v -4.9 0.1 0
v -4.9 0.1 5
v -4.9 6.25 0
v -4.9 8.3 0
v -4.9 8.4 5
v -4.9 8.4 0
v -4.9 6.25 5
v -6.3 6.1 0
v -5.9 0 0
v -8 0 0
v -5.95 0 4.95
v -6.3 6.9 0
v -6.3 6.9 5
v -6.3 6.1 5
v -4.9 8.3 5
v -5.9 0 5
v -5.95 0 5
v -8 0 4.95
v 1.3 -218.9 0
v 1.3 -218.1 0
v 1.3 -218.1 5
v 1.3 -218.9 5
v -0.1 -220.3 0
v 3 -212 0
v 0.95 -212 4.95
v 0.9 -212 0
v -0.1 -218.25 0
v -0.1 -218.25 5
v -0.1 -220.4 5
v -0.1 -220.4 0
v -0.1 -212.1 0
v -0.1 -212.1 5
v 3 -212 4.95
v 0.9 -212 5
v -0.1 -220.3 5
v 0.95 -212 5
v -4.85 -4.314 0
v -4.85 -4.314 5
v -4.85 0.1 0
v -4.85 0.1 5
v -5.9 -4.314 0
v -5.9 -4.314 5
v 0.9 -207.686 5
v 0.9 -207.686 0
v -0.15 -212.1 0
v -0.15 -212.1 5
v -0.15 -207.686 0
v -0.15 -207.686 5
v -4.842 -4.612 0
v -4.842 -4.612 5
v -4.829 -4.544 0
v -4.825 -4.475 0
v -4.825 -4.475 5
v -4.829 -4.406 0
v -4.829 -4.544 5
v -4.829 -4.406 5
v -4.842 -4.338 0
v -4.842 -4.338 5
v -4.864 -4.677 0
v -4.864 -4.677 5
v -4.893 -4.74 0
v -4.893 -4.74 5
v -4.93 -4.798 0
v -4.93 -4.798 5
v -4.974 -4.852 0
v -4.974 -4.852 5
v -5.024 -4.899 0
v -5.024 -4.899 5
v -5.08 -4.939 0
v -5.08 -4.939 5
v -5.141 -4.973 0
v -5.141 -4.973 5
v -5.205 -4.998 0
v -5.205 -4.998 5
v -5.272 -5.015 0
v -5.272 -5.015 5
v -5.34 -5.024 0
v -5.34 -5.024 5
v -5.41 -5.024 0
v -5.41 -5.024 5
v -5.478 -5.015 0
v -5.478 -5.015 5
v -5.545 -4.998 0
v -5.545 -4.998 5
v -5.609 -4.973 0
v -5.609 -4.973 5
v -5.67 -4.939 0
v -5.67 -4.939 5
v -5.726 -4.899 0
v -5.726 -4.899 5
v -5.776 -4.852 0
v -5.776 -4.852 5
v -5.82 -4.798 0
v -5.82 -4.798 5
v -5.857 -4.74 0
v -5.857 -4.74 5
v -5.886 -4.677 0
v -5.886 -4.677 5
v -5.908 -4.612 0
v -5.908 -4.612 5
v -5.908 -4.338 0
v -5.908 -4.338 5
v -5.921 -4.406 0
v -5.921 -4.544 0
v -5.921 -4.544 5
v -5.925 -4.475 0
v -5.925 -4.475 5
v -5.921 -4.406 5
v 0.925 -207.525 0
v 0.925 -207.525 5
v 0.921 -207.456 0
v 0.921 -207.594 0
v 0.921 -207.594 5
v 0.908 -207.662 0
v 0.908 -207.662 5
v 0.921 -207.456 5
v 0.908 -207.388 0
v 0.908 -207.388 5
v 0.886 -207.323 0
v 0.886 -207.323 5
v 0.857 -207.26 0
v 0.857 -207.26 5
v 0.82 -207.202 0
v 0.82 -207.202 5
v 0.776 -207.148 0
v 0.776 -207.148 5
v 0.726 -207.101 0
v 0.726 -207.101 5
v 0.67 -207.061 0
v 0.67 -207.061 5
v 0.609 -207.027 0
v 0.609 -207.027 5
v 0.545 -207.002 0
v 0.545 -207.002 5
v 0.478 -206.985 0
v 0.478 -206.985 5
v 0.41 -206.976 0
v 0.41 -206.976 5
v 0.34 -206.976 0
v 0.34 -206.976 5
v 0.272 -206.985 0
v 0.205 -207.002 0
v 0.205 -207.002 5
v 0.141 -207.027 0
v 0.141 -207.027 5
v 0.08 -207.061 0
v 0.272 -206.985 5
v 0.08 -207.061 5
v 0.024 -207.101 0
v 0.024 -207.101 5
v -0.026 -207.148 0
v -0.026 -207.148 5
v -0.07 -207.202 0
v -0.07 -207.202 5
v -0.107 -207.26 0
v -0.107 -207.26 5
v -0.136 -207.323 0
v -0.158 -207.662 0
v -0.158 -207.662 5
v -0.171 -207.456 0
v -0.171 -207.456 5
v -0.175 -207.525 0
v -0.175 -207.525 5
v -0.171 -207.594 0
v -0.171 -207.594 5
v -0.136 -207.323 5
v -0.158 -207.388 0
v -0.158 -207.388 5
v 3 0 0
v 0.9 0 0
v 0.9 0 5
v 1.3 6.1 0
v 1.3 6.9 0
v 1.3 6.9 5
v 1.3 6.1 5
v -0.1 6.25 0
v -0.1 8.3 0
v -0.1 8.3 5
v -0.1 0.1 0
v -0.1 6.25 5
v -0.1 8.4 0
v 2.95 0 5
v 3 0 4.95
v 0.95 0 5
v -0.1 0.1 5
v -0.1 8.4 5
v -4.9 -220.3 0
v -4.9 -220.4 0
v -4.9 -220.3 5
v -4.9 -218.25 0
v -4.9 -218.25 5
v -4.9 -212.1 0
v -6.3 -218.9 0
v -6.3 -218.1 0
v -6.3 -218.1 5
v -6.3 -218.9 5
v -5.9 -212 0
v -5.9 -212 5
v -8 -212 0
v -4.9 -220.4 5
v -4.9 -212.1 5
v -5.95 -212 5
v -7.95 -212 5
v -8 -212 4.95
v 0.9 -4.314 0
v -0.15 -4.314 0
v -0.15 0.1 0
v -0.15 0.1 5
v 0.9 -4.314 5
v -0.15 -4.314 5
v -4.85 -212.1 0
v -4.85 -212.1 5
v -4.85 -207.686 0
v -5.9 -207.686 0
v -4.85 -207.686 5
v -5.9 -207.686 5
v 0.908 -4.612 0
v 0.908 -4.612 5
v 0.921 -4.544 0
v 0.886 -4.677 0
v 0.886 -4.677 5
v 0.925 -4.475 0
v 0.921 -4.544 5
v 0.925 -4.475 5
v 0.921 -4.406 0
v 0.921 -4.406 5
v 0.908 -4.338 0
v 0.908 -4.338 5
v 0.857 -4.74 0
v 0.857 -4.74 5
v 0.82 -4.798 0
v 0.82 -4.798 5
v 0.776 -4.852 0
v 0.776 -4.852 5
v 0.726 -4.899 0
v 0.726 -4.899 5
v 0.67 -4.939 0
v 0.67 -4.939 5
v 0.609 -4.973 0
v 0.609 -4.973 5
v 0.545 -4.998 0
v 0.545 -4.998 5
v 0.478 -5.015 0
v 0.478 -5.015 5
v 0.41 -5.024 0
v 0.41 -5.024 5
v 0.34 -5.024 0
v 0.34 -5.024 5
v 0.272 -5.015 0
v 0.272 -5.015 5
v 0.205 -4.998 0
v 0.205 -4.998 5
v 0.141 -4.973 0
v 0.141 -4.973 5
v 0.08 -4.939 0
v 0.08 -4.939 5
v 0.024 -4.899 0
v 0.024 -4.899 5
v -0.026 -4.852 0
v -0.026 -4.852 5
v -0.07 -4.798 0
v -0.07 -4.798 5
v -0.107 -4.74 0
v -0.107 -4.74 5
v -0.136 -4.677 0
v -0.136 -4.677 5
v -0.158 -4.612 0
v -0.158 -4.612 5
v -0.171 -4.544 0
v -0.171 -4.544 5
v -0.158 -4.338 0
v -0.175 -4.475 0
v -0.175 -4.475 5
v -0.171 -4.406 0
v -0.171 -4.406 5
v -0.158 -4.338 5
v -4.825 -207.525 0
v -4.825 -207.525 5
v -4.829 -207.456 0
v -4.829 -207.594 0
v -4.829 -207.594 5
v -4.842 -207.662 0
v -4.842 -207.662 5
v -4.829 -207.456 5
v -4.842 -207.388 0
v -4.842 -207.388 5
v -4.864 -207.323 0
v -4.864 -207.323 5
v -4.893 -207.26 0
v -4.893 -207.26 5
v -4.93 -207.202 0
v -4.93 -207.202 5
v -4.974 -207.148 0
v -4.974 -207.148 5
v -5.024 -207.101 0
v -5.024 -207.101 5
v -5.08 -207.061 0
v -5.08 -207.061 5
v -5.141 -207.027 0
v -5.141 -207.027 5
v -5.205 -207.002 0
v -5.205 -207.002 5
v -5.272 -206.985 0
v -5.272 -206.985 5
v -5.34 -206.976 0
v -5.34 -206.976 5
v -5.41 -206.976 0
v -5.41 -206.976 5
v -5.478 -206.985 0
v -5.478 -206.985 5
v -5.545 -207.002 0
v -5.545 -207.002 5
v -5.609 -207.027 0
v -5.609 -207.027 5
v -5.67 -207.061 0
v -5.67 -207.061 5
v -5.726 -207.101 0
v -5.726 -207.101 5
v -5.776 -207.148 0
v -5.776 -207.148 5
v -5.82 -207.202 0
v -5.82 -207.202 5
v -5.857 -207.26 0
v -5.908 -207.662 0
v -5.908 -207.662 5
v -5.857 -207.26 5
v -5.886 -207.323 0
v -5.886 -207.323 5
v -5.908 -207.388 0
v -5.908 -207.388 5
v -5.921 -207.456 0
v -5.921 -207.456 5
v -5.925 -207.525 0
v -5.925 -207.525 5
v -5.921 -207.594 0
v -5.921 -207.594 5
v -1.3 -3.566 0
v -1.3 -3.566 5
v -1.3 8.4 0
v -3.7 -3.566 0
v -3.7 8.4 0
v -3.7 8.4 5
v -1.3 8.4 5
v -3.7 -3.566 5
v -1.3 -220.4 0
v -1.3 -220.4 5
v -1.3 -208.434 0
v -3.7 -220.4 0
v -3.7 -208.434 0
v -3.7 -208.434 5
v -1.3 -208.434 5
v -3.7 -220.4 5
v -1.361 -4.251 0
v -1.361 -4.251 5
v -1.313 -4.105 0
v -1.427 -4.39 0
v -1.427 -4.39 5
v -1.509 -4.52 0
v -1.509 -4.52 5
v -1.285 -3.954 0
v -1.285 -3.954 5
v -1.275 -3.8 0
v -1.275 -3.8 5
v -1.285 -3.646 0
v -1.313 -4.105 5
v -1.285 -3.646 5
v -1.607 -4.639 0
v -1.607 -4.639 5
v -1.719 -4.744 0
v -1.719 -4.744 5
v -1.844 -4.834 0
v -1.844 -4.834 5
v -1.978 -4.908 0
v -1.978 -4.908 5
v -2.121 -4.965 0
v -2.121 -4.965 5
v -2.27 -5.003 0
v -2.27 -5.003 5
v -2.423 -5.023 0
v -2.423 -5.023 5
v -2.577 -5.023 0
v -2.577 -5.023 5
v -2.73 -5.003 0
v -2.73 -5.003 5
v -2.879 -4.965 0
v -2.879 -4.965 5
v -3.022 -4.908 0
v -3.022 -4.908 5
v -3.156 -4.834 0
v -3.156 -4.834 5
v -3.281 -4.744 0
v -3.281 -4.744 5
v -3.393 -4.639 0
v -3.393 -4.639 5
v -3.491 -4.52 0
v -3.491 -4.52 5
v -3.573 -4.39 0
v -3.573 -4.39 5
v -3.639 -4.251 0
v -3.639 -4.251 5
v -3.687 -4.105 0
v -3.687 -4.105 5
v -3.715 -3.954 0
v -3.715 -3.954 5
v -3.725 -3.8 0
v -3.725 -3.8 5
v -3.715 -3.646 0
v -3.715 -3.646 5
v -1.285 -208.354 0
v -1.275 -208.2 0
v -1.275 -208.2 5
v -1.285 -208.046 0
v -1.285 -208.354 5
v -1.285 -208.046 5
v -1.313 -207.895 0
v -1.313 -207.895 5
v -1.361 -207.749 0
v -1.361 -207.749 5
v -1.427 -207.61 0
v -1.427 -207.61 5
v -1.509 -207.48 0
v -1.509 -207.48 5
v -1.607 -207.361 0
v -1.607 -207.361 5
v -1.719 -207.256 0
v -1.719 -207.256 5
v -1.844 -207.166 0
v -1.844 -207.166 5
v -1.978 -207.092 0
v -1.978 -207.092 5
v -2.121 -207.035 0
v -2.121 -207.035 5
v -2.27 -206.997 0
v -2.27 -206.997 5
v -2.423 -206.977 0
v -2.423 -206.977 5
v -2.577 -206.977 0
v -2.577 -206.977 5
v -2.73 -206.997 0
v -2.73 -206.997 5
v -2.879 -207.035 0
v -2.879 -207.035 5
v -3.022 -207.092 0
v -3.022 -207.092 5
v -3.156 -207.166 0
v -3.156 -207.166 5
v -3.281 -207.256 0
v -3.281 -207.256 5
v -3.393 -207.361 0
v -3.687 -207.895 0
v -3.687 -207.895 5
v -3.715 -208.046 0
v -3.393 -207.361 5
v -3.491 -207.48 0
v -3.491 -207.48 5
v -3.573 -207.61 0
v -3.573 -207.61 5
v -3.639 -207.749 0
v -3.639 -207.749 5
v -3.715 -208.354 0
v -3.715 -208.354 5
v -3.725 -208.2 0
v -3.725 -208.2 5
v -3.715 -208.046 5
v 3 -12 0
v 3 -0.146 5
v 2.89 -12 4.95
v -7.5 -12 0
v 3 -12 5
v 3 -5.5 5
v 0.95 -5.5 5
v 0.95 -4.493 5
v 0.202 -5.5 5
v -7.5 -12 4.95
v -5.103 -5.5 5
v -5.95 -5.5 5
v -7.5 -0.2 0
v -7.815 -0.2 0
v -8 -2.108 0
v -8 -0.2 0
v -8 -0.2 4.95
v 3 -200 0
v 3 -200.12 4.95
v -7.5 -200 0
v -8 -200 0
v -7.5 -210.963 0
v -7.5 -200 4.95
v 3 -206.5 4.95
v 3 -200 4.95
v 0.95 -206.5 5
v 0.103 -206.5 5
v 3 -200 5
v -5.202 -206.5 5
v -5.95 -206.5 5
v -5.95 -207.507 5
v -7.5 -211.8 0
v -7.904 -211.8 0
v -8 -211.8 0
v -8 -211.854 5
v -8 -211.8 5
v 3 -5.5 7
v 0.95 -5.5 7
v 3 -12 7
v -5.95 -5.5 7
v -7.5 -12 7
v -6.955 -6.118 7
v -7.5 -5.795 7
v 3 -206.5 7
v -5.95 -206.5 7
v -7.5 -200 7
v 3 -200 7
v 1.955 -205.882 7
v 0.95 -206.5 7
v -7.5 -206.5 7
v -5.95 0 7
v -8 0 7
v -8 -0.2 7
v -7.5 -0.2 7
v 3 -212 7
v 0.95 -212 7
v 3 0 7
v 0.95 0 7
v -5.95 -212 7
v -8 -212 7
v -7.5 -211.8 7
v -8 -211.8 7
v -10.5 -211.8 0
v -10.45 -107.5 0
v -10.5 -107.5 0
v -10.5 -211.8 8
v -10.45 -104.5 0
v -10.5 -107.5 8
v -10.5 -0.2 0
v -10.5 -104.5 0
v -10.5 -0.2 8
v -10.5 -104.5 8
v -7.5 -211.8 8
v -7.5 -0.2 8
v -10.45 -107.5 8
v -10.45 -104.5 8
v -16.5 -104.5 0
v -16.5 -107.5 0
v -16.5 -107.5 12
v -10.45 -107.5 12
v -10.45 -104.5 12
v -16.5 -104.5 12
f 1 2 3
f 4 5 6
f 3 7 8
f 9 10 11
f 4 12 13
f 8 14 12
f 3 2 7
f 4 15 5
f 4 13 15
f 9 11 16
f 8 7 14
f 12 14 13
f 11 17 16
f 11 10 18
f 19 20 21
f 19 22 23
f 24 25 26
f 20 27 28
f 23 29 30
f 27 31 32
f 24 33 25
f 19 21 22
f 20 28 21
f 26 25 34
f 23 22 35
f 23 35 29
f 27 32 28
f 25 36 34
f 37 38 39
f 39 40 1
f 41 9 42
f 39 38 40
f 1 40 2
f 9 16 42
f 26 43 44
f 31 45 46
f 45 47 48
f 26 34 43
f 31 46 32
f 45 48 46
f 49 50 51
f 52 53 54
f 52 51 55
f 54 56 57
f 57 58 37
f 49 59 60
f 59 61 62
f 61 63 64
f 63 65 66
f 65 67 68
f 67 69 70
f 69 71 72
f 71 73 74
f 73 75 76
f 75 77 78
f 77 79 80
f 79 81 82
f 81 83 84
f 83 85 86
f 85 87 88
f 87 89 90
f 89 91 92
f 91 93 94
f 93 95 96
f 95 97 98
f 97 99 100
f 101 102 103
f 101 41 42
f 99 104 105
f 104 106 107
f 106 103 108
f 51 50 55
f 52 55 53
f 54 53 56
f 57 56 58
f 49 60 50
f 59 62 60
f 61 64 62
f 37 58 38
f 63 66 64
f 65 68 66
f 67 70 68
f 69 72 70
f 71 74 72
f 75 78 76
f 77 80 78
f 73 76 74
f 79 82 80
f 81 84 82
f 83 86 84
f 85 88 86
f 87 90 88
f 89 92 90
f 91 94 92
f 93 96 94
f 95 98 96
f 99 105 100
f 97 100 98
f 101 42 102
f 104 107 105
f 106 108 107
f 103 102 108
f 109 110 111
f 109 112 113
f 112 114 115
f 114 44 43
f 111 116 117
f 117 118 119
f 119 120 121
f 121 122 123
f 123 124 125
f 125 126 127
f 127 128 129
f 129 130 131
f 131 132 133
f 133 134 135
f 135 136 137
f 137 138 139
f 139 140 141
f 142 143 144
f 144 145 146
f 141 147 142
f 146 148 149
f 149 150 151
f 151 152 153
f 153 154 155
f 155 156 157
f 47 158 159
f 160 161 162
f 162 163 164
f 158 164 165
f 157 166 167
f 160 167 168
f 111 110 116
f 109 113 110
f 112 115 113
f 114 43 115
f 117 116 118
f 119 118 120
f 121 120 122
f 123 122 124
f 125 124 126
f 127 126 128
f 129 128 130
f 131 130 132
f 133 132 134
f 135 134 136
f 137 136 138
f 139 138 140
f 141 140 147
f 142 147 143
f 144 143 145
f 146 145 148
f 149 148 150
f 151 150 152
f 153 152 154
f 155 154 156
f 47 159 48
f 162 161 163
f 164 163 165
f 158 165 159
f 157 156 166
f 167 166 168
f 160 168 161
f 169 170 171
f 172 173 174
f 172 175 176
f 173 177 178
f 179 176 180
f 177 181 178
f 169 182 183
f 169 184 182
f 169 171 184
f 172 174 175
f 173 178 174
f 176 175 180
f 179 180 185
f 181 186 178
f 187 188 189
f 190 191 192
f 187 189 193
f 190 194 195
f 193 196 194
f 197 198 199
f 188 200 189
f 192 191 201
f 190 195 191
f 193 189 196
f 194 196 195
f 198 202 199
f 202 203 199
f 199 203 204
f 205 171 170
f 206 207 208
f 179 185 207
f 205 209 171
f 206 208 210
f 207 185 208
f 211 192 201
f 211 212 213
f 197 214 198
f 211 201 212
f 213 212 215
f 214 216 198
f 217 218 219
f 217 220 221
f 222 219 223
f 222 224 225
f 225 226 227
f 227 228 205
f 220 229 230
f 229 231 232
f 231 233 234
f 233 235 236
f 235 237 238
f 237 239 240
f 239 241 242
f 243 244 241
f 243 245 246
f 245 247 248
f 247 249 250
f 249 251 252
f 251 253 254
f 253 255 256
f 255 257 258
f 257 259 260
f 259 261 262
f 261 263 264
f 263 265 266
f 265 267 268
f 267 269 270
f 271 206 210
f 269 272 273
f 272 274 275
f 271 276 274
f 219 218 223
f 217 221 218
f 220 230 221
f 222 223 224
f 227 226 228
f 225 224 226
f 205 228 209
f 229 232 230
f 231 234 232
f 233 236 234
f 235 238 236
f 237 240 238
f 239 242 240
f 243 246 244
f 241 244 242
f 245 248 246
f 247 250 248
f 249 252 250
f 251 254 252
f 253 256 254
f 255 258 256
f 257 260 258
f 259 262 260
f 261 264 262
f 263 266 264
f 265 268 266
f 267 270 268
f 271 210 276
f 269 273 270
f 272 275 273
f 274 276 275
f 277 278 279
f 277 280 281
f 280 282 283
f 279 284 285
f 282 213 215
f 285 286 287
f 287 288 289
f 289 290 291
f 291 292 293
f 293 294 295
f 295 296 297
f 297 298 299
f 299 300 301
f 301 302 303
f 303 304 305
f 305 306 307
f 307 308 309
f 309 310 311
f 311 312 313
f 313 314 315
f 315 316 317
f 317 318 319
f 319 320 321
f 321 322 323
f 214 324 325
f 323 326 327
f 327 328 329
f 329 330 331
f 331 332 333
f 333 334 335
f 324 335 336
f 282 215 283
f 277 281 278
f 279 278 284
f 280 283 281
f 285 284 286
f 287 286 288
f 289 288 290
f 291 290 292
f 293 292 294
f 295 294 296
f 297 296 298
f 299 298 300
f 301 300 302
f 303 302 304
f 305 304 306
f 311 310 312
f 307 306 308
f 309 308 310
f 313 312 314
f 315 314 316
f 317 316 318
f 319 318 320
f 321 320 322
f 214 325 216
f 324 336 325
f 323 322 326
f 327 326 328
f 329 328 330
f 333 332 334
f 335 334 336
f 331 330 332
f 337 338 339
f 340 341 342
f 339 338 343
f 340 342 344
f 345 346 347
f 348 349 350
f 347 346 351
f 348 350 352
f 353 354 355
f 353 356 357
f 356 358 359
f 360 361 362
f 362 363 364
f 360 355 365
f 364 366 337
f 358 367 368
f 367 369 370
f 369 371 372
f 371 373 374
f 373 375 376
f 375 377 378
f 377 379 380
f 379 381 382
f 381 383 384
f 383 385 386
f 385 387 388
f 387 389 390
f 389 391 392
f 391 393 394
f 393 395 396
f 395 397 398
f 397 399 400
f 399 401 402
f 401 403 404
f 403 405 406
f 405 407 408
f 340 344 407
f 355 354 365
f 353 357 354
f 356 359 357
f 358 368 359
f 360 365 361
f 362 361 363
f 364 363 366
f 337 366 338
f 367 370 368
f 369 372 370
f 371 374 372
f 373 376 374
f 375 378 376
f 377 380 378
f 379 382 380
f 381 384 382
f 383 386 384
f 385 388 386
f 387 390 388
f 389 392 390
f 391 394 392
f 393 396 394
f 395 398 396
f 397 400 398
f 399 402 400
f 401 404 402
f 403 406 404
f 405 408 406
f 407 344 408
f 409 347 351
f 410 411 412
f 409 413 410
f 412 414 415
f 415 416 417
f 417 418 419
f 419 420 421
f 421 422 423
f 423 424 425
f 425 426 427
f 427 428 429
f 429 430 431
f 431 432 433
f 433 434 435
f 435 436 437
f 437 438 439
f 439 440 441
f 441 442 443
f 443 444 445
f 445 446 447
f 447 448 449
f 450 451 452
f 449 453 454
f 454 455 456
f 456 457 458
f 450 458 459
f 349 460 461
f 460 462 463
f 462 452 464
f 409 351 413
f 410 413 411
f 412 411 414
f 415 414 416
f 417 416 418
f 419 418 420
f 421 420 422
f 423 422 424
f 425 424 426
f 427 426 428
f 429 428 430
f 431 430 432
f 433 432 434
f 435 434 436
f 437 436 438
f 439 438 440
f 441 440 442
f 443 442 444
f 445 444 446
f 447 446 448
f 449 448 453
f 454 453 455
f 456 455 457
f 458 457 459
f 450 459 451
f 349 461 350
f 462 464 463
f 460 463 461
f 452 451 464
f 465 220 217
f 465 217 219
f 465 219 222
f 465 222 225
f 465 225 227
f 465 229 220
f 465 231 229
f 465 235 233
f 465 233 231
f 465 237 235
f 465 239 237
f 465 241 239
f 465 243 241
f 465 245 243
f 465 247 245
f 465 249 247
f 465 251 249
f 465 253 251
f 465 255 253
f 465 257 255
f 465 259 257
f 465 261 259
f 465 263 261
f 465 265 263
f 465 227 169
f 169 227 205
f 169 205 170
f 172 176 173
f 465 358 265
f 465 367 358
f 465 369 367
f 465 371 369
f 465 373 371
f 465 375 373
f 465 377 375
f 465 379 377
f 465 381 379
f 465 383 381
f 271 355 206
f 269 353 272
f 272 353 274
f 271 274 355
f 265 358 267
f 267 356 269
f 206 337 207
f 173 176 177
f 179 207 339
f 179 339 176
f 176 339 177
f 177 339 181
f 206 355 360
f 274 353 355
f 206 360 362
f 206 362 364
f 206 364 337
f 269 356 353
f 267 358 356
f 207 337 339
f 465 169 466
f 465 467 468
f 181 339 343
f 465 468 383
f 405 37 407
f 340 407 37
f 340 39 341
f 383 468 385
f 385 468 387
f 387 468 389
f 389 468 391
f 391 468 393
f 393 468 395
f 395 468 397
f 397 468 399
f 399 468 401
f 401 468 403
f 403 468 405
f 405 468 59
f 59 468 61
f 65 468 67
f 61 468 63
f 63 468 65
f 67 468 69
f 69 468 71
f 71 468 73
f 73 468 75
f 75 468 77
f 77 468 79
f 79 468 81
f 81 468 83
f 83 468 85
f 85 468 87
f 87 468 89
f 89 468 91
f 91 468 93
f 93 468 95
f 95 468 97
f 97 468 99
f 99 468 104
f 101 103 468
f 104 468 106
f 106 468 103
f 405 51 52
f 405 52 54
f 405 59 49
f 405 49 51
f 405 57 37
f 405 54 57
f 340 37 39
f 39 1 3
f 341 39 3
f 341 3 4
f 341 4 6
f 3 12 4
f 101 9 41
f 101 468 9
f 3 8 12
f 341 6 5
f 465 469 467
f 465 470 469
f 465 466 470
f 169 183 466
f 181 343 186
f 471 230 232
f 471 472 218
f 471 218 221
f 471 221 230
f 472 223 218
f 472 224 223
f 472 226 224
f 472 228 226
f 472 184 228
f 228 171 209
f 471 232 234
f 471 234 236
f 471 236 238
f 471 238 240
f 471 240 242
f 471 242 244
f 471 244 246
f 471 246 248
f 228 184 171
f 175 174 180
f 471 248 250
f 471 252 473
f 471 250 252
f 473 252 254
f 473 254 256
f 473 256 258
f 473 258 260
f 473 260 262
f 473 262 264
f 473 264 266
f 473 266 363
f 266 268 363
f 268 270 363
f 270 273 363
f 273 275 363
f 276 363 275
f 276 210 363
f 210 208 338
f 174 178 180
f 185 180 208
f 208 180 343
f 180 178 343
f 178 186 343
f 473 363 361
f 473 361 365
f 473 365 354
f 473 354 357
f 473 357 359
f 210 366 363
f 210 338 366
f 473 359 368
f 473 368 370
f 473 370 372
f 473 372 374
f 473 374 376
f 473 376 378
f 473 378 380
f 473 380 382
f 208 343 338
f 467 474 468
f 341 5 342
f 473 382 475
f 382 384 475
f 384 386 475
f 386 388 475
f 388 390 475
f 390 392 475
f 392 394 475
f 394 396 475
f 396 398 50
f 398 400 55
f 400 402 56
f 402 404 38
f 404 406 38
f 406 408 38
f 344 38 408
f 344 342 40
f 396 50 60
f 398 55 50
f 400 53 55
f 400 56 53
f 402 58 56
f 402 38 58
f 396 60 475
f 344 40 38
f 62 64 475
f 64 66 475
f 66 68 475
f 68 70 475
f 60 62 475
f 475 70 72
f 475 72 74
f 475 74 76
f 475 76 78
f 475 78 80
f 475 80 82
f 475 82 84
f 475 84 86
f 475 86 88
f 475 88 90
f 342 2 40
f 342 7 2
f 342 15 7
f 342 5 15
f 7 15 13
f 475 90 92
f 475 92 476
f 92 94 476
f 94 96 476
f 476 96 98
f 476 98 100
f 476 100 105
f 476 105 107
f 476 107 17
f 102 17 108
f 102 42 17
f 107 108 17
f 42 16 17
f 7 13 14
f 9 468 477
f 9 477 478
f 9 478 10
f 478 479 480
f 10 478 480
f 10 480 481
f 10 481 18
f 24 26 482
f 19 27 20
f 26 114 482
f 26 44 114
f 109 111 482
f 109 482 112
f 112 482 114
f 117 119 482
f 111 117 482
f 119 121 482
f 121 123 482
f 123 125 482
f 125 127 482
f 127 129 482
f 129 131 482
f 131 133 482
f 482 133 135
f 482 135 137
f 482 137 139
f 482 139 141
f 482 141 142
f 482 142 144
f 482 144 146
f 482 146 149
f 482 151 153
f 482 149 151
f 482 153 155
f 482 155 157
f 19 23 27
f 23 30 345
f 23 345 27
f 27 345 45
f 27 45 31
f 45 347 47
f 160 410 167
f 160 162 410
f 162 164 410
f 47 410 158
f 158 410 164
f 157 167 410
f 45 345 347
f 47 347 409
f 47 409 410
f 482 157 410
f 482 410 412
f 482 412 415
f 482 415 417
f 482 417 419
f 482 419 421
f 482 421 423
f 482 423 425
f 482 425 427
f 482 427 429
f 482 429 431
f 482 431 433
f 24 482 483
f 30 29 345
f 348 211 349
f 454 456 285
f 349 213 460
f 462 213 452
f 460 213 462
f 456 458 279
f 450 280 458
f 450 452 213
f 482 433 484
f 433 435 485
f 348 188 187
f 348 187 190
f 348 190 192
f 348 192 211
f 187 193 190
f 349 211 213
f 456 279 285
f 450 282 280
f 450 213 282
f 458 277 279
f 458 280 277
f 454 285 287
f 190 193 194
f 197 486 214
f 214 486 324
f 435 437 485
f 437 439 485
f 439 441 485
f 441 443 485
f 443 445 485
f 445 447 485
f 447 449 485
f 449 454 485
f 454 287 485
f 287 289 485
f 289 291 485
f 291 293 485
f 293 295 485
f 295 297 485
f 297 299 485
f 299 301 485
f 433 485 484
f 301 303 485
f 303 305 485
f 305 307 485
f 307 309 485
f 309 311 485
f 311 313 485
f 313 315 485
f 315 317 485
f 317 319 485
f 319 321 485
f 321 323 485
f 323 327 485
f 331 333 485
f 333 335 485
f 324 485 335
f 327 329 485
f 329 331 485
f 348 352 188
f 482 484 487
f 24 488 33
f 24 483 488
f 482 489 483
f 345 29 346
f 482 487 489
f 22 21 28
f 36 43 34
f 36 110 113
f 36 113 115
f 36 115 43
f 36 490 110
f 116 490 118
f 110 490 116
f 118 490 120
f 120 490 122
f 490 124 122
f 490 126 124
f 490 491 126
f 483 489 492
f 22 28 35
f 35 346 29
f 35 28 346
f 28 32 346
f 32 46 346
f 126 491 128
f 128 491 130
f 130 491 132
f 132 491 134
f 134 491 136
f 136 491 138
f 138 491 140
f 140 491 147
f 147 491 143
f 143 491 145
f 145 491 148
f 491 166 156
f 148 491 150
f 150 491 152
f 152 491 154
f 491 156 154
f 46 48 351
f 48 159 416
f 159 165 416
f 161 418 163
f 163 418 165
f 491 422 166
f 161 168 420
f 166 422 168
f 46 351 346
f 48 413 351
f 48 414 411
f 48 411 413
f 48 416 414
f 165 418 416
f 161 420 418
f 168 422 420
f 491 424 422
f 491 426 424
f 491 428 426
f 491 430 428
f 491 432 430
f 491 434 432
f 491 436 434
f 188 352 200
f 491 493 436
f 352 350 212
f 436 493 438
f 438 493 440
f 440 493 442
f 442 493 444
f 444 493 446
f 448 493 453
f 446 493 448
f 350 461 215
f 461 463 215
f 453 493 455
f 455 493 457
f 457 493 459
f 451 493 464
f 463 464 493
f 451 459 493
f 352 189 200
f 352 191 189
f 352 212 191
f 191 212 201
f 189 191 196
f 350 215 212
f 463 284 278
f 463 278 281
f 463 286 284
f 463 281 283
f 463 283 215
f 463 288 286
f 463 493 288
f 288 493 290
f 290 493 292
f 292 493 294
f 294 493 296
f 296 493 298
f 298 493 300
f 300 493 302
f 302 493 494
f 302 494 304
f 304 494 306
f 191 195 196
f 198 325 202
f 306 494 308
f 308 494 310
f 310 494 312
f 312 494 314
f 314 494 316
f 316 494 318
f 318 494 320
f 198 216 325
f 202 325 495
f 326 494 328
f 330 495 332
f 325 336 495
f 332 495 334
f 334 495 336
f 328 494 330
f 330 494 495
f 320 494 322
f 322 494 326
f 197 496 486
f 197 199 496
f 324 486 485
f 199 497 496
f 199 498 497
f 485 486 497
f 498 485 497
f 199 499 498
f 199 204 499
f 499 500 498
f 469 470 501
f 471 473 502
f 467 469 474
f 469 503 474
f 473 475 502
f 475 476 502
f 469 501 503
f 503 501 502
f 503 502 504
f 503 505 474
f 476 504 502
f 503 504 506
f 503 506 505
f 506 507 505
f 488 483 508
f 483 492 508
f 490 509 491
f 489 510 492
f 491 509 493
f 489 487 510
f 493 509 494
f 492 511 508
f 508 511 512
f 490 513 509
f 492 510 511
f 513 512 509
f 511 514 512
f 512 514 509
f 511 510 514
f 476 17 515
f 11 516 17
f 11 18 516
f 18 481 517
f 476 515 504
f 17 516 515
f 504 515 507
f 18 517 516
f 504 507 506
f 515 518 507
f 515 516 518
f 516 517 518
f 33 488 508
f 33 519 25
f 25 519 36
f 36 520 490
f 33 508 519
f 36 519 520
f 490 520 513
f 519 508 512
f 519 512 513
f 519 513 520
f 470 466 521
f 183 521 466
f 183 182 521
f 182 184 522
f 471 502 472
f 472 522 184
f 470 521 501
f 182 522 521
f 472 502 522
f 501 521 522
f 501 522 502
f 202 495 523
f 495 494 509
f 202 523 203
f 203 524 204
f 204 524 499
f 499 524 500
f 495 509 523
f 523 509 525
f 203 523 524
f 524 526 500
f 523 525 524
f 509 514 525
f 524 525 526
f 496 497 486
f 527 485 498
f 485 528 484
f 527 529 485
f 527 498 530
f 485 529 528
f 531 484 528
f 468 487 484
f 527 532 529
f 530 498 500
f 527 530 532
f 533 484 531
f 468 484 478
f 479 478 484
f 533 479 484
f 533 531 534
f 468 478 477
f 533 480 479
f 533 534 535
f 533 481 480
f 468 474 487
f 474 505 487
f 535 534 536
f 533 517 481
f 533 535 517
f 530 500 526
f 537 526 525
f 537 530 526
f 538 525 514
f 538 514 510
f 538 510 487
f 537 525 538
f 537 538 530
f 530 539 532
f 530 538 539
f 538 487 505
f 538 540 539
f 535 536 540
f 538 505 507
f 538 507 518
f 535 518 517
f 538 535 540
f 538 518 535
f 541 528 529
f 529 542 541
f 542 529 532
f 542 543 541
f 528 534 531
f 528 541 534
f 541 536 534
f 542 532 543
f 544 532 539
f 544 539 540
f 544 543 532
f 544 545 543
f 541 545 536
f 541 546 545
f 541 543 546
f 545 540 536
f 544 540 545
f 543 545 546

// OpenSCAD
$fn = 50;

difference() {
	union() {
		translate(v = [0, 0, 0]) {
			rotate(a = [0, 0, 0]) {
				difference() {
					union() {
						translate(v = [0, 0, 2.5]) {
							rotate(a = [0, -90, 0]) {
								difference() {
									union() {
										translate(v = [0, 0, 0]) {
											rotate(a = [0, 0, 0]) {
												difference() {
													union() {
														translate(v = [-2.5, 0, 2.5]) {
															rotate(a = [0, 90.0, 0]) {
																difference() {
																	union() {
																		translate(v = [0, 0, 0]) {
																			rotate(a = [0, 0, 0]) {
																				difference() {
																					union() {
																						translate(v = [0, 0, 0]) {
																							rotate(a = [0, 0, 0]) {
																								difference() {
																									union() {
																										translate(v = [-5.5, -12.0, 0]) {
																											cube(size = [11.0, 20.4, 5.0]);
																										}
																									}
																									union() {
																										translate(v = [0, 0, -0.1]) {
																											linear_extrude(height = 5.2) {
																												polygon(points = [[-2.4, 0], [-2.4, 6.25], [-3.8, 6.1], [-3.8, 6.8999999999999995], [-2.4, 8.299999999999999], [-2.4, 9.399999999999999], [-5.7, 9.399999999999999], [-5.7, 0]]);
																											}
																										}
																										translate(v = [0, 0, -0.1]) {
																											linear_extrude(height = 5.2) {
																												polygon(points = [[-2.35, -4.5], [-2.35, -4.3875], [-2.35, -4.275], [-2.35, -4.1625], [-2.35, -4.05], [-2.35, -3.9375], [-2.35, -3.825], [-2.35, -3.7125], [-2.35, -3.6], [-2.35, -3.4875], [-2.35, -3.375], [-2.35, -3.2625], [-2.35, -3.15], [-2.35, -3.0375], [-2.35, -2.925], [-2.35, -2.8125], [-2.35, -2.7], [-2.35, -2.5875], [-2.35, -2.475], [-2.35, -2.3625], [-2.35, -2.25], [-2.35, -2.1375], [-2.35, -2.025], [-2.35, -1.9125], [-2.35, -1.7999999999999998], [-2.35, -1.6875], [-2.35, -1.5750000000000002], [-2.35, -1.4625], [-2.35, -1.35], [-2.35, -1.2374999999999998], [-2.35, -1.125], [-2.35, -1.0125000000000002], [-2.35, -0.8999999999999999], [-2.35, -0.7875000000000001], [-2.35, -0.6749999999999998], [-2.35, -0.5625], [-2.35, -0.4500000000000002], [-2.35, -0.33750000000000036], [-2.35, -0.22499999999999964], [-2.35, -0.11249999999999982], [-2.35, 0.0], [-2.35, 0.1], [-3.4, 0.1], [-3.4, -4.5]]);
																											}
																										}
																										translate(v = [-2.875, -4.475, -0.1]) {
																											cylinder(h = 5.2, r = 0.55);
																										}
																										translate(v = [0, 0, -0.1]) {
																											linear_extrude(height = 5.2) {
																												polygon(points = [[2.4, 0], [2.4, 6.25], [3.8, 6.1], [3.8, 6.8999999999999995], [2.4, 8.299999999999999], [2.4, 9.399999999999999], [5.7, 9.399999999999999], [5.7, 0]]);
																											}
																										}
																										translate(v = [0, 0, -0.1]) {
																											linear_extrude(height = 5.2) {
																												polygon(points = [[2.35, -4.5], [2.35, -4.3875], [2.35, -4.275], [2.35, -4.1625], [2.35, -4.05], [2.35, -3.9375], [2.35, -3.825], [2.35, -3.7125], [2.35, -3.6], [2.35, -3.4875], [2.35, -3.375], [2.35, -3.2625], [2.35, -3.15], [2.35, -3.0375], [2.35, -2.925], [2.35, -2.8125], [2.35, -2.7], [2.35, -2.5875], [2.35, -2.475], [2.35, -2.3625], [2.35, -2.25], [2.35, -2.1375], [2.35, -2.025], [2.35, -1.9125], [2.35, -1.7999999999999998], [2.35, -1.6875], [2.35, -1.5750000000000002], [2.35, -1.4625], [2.35, -1.35], [2.35, -1.2374999999999998], [2.35, -1.125], [2.35, -1.0125000000000002], [2.35, -0.8999999999999999], [2.35, -0.7875000000000001], [2.35, -0.6749999999999998], [2.35, -0.5625], [2.35, -0.4500000000000002], [2.35, -0.33750000000000036], [2.35, -0.22499999999999964], [2.35, -0.11249999999999982], [2.35, 0.0], [2.35, 0.1], [3.4, 0.1], [3.4, -4.5]]);
																											}
																										}
																										translate(v = [2.875, -4.475, -0.1]) {
																											cylinder(h = 5.2, r = 0.55);
																										}
																										translate(v = [0, 0, -0.1]) {
																											linear_extrude(height = 5.2) {
																												polygon(points = [[-1.2, -3.8499999999999996], [-1.2, -3.6607142857142856], [-1.2, -3.471428571428571], [-1.2, -3.2821428571428566], [-1.2, -3.0928571428571425], [-1.2, -2.9035714285714285], [-1.2, -2.714285714285714], [-1.2, -2.5249999999999995], [-1.2, -2.3357142857142854], [-1.2, -2.1464285714285714], [-1.2, -1.9571428571428569], [-1.2, -1.7678571428571423], [-1.2, -1.5785714285714283], [-1.2, -1.3892857142857138], [-1.2, -1.1999999999999997], [-1.2, -1.0107142857142852], [-1.2, -0.8214285714285712], [-1.2, -0.6321428571428567], [-1.2, -0.4428571428571426], [-1.2, -0.2535714285714281], [-1.2, -0.06428571428571406], [-1.2, 0], [-1.2, 0.12500000000000044], [-1.2, 0.31428571428571495], [-1.2, 0.503571428571429], [-1.2, 0.6928571428571431], [-1.2, 0.8821428571428571], [-1.2, 1.071428571428572], [-1.2, 1.2607142857142861], [-1.2, 1.4500000000000002], [-1.2, 1.6392857142857142], [-1.2, 1.8285714285714292], [-1.2, 2.0178571428571432], [-1.2, 2.2071428571428573], [-1.2, 2.3964285714285714], [-1.2, 2.5857142857142863], [-1.2, 2.7750000000000004], [-1.2, 2.9642857142857144], [-1.2, 3.1535714285714294], [-1.2, 3.3428571428571434], [-1.2, 3.5321428571428575], [-1.2, 3.7214285714285715], [-1.2, 3.9107142857142865], [-1.2, 4.1000000000000005], [-1.2, 4.289285714285715], [-1.2, 4.4785714285714295], [-1.2, 4.667857142857143], [-1.2, 4.857142857142858], [-1.2, 5.046428571428573], [-1.2, 5.235714285714286], [-1.2, 5.425000000000001], [-1.2, 5.614285714285714], [-1.2, 5.803571428571429], [-1.2, 5.992857142857144], [-1.2, 6.1], [-1.2, 6.182142857142857], [-1.2, 6.25], [-1.2, 6.371428571428572], [-1.2, 6.560714285714287], [-1.2, 6.75], [-1.2, 6.939285714285715], [-1.2, 7.128571428571428], [-1.2, 7.317857142857143], [-1.2, 7.507142857142858], [-1.2, 7.696428571428571], [-1.2, 7.885714285714286], [-1.2, 8.075000000000001], [-1.2, 8.264285714285714], [-1.2, 8.45357142857143], [-1.2, 8.642857142857142], [-1.2, 8.832142857142857], [-1.2, 9.021428571428572], [-1.2, 9.210714285714285], [-1.2, 9.4], [1.2, 9.4], [1.2, 9.210714285714285], [1.2, 9.021428571428572], [1.2, 8.832142857142857], [1.2, 8.642857142857142], [1.2, 8.45357142857143], [1.2, 8.264285714285714], [1.2, 8.075000000000001], [1.2, 7.885714285714286], [1.2, 7.696428571428571], [1.2, 7.507142857142858], [1.2, 7.317857142857143], [1.2, 7.128571428571428], [1.2, 6.939285714285715], [1.2, 6.75], [1.2, 6.560714285714287], [1.2, 6.371428571428572], [1.2, 6.25], [1.2, 6.182142857142857], [1.2, 6.1], [1.2, 5.992857142857144], [1.2, 5.803571428571429], [1.2, 5.614285714285714], [1.2, 5.425000000000001], [1.2, 5.235714285714286], [1.2, 5.046428571428573], [1.2, 4.857142857142858], [1.2, 4.667857142857143], [1.2, 4.4785714285714295], [1.2, 4.289285714285715], [1.2, 4.1000000000000005], [1.2, 3.9107142857142865], [1.2, 3.7214285714285715], [1.2, 3.5321428571428575], [1.2, 3.3428571428571434], [1.2, 3.1535714285714294], [1.2, 2.9642857142857144], [1.2, 2.7750000000000004], [1.2, 2.5857142857142863], [1.2, 2.3964285714285714], [1.2, 2.2071428571428573], [1.2, 2.0178571428571432], [1.2, 1.8285714285714292], [1.2, 1.6392857142857142], [1.2, 1.4500000000000002], [1.2, 1.2607142857142861], [1.2, 1.071428571428572], [1.2, 0.8821428571428571], [1.2, 0.6928571428571431], [1.2, 0.503571428571429], [1.2, 0.31428571428571495], [1.2, 0.12500000000000044], [1.2, 0], [1.2, -0.06428571428571406], [1.2, -0.2535714285714281], [1.2, -0.4428571428571426], [1.2, -0.6321428571428567], [1.2, -0.8214285714285712], [1.2, -1.0107142857142852], [1.2, -1.1999999999999997], [1.2, -1.3892857142857138], [1.2, -1.5785714285714283], [1.2, -1.7678571428571423], [1.2, -1.9571428571428569], [1.2, -2.1464285714285714], [1.2, -2.3357142857142854], [1.2, -2.5249999999999995], [1.2, -2.714285714285714], [1.2, -2.9035714285714285], [1.2, -3.0928571428571425], [1.2, -3.2821428571428566], [1.2, -3.471428571428571], [1.2, -3.6607142857142856], [1.2, -3.8499999999999996]]);
																											}
																										}
																										translate(v = [0, -3.8, -0.1]) {
																											cylinder(h = 5.2, r = 1.2249999999999999);
																										}
																									}
																								}
																							}
																						}
																						translate(v = [0, 0, 0]) {
																							rotate(a = [0, 0, 0]) {
																								difference() {
																									union() {
																										translate(v = [-5.5, -12.0, 4.95]) {
																											cube(size = [11.0, 6.5, 2.05]);
																										}
																									}
																									union();
																								}
																							}
																						}
																						translate(v = [-5.5, -12.0, 4.95]) {
																							cube(size = [2.0500000000000003, 12.0, 2.05]);
																						}
																						translate(v = [3.4499999999999997, -12.0, 4.95]) {
																							cube(size = [2.0500000000000003, 12.0, 2.05]);
																						}
																					}
																					union();
																				}
																			}
																		}
																	}
																	union();
																}
															}
														}
													}
													union();
												}
											}
										}
										translate(v = [-2.5, -212.0, 2.5]) {
											rotate(a = [180, -90, 0]) {
												difference() {
													union() {
														translate(v = [0, 0, 0]) {
															rotate(a = [0, 0, 0]) {
																difference() {
																	union() {
																		translate(v = [0, 0, 0]) {
																			rotate(a = [0, 0, 0]) {
																				difference() {
																					union() {
																						translate(v = [-5.5, -12.0, 0]) {
																							cube(size = [11.0, 20.4, 5.0]);
																						}
																					}
																					union() {
																						translate(v = [0, 0, -0.1]) {
																							linear_extrude(height = 5.2) {
																								polygon(points = [[-2.4, 0], [-2.4, 6.25], [-3.8, 6.1], [-3.8, 6.8999999999999995], [-2.4, 8.299999999999999], [-2.4, 9.399999999999999], [-5.7, 9.399999999999999], [-5.7, 0]]);
																							}
																						}
																						translate(v = [0, 0, -0.1]) {
																							linear_extrude(height = 5.2) {
																								polygon(points = [[-2.35, -4.5], [-2.35, -4.3875], [-2.35, -4.275], [-2.35, -4.1625], [-2.35, -4.05], [-2.35, -3.9375], [-2.35, -3.825], [-2.35, -3.7125], [-2.35, -3.6], [-2.35, -3.4875], [-2.35, -3.375], [-2.35, -3.2625], [-2.35, -3.15], [-2.35, -3.0375], [-2.35, -2.925], [-2.35, -2.8125], [-2.35, -2.7], [-2.35, -2.5875], [-2.35, -2.475], [-2.35, -2.3625], [-2.35, -2.25], [-2.35, -2.1375], [-2.35, -2.025], [-2.35, -1.9125], [-2.35, -1.7999999999999998], [-2.35, -1.6875], [-2.35, -1.5750000000000002], [-2.35, -1.4625], [-2.35, -1.35], [-2.35, -1.2374999999999998], [-2.35, -1.125], [-2.35, -1.0125000000000002], [-2.35, -0.8999999999999999], [-2.35, -0.7875000000000001], [-2.35, -0.6749999999999998], [-2.35, -0.5625], [-2.35, -0.4500000000000002], [-2.35, -0.33750000000000036], [-2.35, -0.22499999999999964], [-2.35, -0.11249999999999982], [-2.35, 0.0], [-2.35, 0.1], [-3.4, 0.1], [-3.4, -4.5]]);
																							}
																						}
																						translate(v = [-2.875, -4.475, -0.1]) {
																							cylinder(h = 5.2, r = 0.55);
																						}
																						translate(v = [0, 0, -0.1]) {
																							linear_extrude(height = 5.2) {
																								polygon(points = [[2.4, 0], [2.4, 6.25], [3.8, 6.1], [3.8, 6.8999999999999995], [2.4, 8.299999999999999], [2.4, 9.399999999999999], [5.7, 9.399999999999999], [5.7, 0]]);
																							}
																						}
																						translate(v = [0, 0, -0.1]) {
																							linear_extrude(height = 5.2) {
																								polygon(points = [[2.35, -4.5], [2.35, -4.3875], [2.35, -4.275], [2.35, -4.1625], [2.35, -4.05], [2.35, -3.9375], [2.35, -3.825], [2.35, -3.7125], [2.35, -3.6], [2.35, -3.4875], [2.35, -3.375], [2.35, -3.2625], [2.35, -3.15], [2.35, -3.0375], [2.35, -2.925], [2.35, -2.8125], [2.35, -2.7], [2.35, -2.5875], [2.35, -2.475], [2.35, -2.3625], [2.35, -2.25], [2.35, -2.1375], [2.35, -2.025], [2.35, -1.9125], [2.35, -1.7999999999999998], [2.35, -1.6875], [2.35, -1.5750000000000002], [2.35, -1.4625], [2.35, -1.35], [2.35, -1.2374999999999998], [2.35, -1.125], [2.35, -1.0125000000000002], [2.35, -0.8999999999999999], [2.35, -0.7875000000000001], [2.35, -0.6749999999999998], [2.35, -0.5625], [2.35, -0.4500000000000002], [2.35, -0.33750000000000036], [2.35, -0.22499999999999964], [2.35, -0.11249999999999982], [2.35, 0.0], [2.35, 0.1], [3.4, 0.1], [3.4, -4.5]]);
																							}
																						}
																						translate(v = [2.875, -4.475, -0.1]) {
																							cylinder(h = 5.2, r = 0.55);
																						}
																						translate(v = [0, 0, -0.1]) {
																							linear_extrude(height = 5.2) {
																								polygon(points = [[-1.2, -3.8499999999999996], [-1.2, -3.6607142857142856], [-1.2, -3.471428571428571], [-1.2, -3.2821428571428566], [-1.2, -3.0928571428571425], [-1.2, -2.9035714285714285], [-1.2, -2.714285714285714], [-1.2, -2.5249999999999995], [-1.2, -2.3357142857142854], [-1.2, -2.1464285714285714], [-1.2, -1.9571428571428569], [-1.2, -1.7678571428571423], [-1.2, -1.5785714285714283], [-1.2, -1.3892857142857138], [-1.2, -1.1999999999999997], [-1.2, -1.0107142857142852], [-1.2, -0.8214285714285712], [-1.2, -0.6321428571428567], [-1.2, -0.4428571428571426], [-1.2, -0.2535714285714281], [-1.2, -0.06428571428571406], [-1.2, 0], [-1.2, 0.12500000000000044], [-1.2, 0.31428571428571495], [-1.2, 0.503571428571429], [-1.2, 0.6928571428571431], [-1.2, 0.8821428571428571], [-1.2, 1.071428571428572], [-1.2, 1.2607142857142861], [-1.2, 1.4500000000000002], [-1.2, 1.6392857142857142], [-1.2, 1.8285714285714292], [-1.2, 2.0178571428571432], [-1.2, 2.2071428571428573], [-1.2, 2.3964285714285714], [-1.2, 2.5857142857142863], [-1.2, 2.7750000000000004], [-1.2, 2.9642857142857144], [-1.2, 3.1535714285714294], [-1.2, 3.3428571428571434], [-1.2, 3.5321428571428575], [-1.2, 3.7214285714285715], [-1.2, 3.9107142857142865], [-1.2, 4.1000000000000005], [-1.2, 4.289285714285715], [-1.2, 4.4785714285714295], [-1.2, 4.667857142857143], [-1.2, 4.857142857142858], [-1.2, 5.046428571428573], [-1.2, 5.235714285714286], [-1.2, 5.425000000000001], [-1.2, 5.614285714285714], [-1.2, 5.803571428571429], [-1.2, 5.992857142857144], [-1.2, 6.1], [-1.2, 6.182142857142857], [-1.2, 6.25], [-1.2, 6.371428571428572], [-1.2, 6.560714285714287], [-1.2, 6.75], [-1.2, 6.939285714285715], [-1.2, 7.128571428571428], [-1.2, 7.317857142857143], [-1.2, 7.507142857142858], [-1.2, 7.696428571428571], [-1.2, 7.885714285714286], [-1.2, 8.075000000000001], [-1.2, 8.264285714285714], [-1.2, 8.45357142857143], [-1.2, 8.642857142857142], [-1.2, 8.832142857142857], [-1.2, 9.021428571428572], [-1.2, 9.210714285714285], [-1.2, 9.4], [1.2, 9.4], [1.2, 9.210714285714285], [1.2, 9.021428571428572], [1.2, 8.832142857142857], [1.2, 8.642857142857142], [1.2, 8.45357142857143], [1.2, 8.264285714285714], [1.2, 8.075000000000001], [1.2, 7.885714285714286], [1.2, 7.696428571428571], [1.2, 7.507142857142858], [1.2, 7.317857142857143], [1.2, 7.128571428571428], [1.2, 6.939285714285715], [1.2, 6.75], [1.2, 6.560714285714287], [1.2, 6.371428571428572], [1.2, 6.25], [1.2, 6.182142857142857], [1.2, 6.1], [1.2, 5.992857142857144], [1.2, 5.803571428571429], [1.2, 5.614285714285714], [1.2, 5.425000000000001], [1.2, 5.235714285714286], [1.2, 5.046428571428573], [1.2, 4.857142857142858], [1.2, 4.667857142857143], [1.2, 4.4785714285714295], [1.2, 4.289285714285715], [1.2, 4.1000000000000005], [1.2, 3.9107142857142865], [1.2, 3.7214285714285715], [1.2, 3.5321428571428575], [1.2, 3.3428571428571434], [1.2, 3.1535714285714294], [1.2, 2.9642857142857144], [1.2, 2.7750000000000004], [1.2, 2.5857142857142863], [1.2, 2.3964285714285714], [1.2, 2.2071428571428573], [1.2, 2.0178571428571432], [1.2, 1.8285714285714292], [1.2, 1.6392857142857142], [1.2, 1.4500000000000002], [1.2, 1.2607142857142861], [1.2, 1.071428571428572], [1.2, 0.8821428571428571], [1.2, 0.6928571428571431], [1.2, 0.503571428571429], [1.2, 0.31428571428571495], [1.2, 0.12500000000000044], [1.2, 0], [1.2, -0.06428571428571406], [1.2, -0.2535714285714281], [1.2, -0.4428571428571426], [1.2, -0.6321428571428567], [1.2, -0.8214285714285712], [1.2, -1.0107142857142852], [1.2, -1.1999999999999997], [1.2, -1.3892857142857138], [1.2, -1.5785714285714283], [1.2, -1.7678571428571423], [1.2, -1.9571428571428569], [1.2, -2.1464285714285714], [1.2, -2.3357142857142854], [1.2, -2.5249999999999995], [1.2, -2.714285714285714], [1.2, -2.9035714285714285], [1.2, -3.0928571428571425], [1.2, -3.2821428571428566], [1.2, -3.471428571428571], [1.2, -3.6607142857142856], [1.2, -3.8499999999999996]]);
																							}
																						}
																						translate(v = [0, -3.8, -0.1]) {
																							cylinder(h = 5.2, r = 1.2249999999999999);
																						}
																					}
																				}
																			}
																		}
																		translate(v = [0, 0, 0]) {
																			rotate(a = [0, 0, 0]) {
																				difference() {
																					union() {
																						translate(v = [-5.5, -12.0, 4.95]) {
																							cube(size = [11.0, 6.5, 2.05]);
																						}
																					}
																					union();
																				}
																			}
																		}
																		translate(v = [-5.5, -12.0, 4.95]) {
																			cube(size = [2.0500000000000003, 12.0, 2.05]);
																		}
																		translate(v = [3.4499999999999997, -12.0, 4.95]) {
																			cube(size = [2.0500000000000003, 12.0, 2.05]);
																		}
																	}
																	union();
																}
															}
														}
													}
													union();
												}
											}
										}
										translate(v = [-2.5, -211.8, 7.5]) {
											cube(size = [8.0, 211.6, 3.0]);
										}
										translate(v = [-2.5, -107.5, 10.45]) {
											cube(size = [12.0, 3.0, 6.05]);
										}
									}
									union();
								}
							}
						}
					}
					union();
				}
			}
		}
	}
	union();
}
